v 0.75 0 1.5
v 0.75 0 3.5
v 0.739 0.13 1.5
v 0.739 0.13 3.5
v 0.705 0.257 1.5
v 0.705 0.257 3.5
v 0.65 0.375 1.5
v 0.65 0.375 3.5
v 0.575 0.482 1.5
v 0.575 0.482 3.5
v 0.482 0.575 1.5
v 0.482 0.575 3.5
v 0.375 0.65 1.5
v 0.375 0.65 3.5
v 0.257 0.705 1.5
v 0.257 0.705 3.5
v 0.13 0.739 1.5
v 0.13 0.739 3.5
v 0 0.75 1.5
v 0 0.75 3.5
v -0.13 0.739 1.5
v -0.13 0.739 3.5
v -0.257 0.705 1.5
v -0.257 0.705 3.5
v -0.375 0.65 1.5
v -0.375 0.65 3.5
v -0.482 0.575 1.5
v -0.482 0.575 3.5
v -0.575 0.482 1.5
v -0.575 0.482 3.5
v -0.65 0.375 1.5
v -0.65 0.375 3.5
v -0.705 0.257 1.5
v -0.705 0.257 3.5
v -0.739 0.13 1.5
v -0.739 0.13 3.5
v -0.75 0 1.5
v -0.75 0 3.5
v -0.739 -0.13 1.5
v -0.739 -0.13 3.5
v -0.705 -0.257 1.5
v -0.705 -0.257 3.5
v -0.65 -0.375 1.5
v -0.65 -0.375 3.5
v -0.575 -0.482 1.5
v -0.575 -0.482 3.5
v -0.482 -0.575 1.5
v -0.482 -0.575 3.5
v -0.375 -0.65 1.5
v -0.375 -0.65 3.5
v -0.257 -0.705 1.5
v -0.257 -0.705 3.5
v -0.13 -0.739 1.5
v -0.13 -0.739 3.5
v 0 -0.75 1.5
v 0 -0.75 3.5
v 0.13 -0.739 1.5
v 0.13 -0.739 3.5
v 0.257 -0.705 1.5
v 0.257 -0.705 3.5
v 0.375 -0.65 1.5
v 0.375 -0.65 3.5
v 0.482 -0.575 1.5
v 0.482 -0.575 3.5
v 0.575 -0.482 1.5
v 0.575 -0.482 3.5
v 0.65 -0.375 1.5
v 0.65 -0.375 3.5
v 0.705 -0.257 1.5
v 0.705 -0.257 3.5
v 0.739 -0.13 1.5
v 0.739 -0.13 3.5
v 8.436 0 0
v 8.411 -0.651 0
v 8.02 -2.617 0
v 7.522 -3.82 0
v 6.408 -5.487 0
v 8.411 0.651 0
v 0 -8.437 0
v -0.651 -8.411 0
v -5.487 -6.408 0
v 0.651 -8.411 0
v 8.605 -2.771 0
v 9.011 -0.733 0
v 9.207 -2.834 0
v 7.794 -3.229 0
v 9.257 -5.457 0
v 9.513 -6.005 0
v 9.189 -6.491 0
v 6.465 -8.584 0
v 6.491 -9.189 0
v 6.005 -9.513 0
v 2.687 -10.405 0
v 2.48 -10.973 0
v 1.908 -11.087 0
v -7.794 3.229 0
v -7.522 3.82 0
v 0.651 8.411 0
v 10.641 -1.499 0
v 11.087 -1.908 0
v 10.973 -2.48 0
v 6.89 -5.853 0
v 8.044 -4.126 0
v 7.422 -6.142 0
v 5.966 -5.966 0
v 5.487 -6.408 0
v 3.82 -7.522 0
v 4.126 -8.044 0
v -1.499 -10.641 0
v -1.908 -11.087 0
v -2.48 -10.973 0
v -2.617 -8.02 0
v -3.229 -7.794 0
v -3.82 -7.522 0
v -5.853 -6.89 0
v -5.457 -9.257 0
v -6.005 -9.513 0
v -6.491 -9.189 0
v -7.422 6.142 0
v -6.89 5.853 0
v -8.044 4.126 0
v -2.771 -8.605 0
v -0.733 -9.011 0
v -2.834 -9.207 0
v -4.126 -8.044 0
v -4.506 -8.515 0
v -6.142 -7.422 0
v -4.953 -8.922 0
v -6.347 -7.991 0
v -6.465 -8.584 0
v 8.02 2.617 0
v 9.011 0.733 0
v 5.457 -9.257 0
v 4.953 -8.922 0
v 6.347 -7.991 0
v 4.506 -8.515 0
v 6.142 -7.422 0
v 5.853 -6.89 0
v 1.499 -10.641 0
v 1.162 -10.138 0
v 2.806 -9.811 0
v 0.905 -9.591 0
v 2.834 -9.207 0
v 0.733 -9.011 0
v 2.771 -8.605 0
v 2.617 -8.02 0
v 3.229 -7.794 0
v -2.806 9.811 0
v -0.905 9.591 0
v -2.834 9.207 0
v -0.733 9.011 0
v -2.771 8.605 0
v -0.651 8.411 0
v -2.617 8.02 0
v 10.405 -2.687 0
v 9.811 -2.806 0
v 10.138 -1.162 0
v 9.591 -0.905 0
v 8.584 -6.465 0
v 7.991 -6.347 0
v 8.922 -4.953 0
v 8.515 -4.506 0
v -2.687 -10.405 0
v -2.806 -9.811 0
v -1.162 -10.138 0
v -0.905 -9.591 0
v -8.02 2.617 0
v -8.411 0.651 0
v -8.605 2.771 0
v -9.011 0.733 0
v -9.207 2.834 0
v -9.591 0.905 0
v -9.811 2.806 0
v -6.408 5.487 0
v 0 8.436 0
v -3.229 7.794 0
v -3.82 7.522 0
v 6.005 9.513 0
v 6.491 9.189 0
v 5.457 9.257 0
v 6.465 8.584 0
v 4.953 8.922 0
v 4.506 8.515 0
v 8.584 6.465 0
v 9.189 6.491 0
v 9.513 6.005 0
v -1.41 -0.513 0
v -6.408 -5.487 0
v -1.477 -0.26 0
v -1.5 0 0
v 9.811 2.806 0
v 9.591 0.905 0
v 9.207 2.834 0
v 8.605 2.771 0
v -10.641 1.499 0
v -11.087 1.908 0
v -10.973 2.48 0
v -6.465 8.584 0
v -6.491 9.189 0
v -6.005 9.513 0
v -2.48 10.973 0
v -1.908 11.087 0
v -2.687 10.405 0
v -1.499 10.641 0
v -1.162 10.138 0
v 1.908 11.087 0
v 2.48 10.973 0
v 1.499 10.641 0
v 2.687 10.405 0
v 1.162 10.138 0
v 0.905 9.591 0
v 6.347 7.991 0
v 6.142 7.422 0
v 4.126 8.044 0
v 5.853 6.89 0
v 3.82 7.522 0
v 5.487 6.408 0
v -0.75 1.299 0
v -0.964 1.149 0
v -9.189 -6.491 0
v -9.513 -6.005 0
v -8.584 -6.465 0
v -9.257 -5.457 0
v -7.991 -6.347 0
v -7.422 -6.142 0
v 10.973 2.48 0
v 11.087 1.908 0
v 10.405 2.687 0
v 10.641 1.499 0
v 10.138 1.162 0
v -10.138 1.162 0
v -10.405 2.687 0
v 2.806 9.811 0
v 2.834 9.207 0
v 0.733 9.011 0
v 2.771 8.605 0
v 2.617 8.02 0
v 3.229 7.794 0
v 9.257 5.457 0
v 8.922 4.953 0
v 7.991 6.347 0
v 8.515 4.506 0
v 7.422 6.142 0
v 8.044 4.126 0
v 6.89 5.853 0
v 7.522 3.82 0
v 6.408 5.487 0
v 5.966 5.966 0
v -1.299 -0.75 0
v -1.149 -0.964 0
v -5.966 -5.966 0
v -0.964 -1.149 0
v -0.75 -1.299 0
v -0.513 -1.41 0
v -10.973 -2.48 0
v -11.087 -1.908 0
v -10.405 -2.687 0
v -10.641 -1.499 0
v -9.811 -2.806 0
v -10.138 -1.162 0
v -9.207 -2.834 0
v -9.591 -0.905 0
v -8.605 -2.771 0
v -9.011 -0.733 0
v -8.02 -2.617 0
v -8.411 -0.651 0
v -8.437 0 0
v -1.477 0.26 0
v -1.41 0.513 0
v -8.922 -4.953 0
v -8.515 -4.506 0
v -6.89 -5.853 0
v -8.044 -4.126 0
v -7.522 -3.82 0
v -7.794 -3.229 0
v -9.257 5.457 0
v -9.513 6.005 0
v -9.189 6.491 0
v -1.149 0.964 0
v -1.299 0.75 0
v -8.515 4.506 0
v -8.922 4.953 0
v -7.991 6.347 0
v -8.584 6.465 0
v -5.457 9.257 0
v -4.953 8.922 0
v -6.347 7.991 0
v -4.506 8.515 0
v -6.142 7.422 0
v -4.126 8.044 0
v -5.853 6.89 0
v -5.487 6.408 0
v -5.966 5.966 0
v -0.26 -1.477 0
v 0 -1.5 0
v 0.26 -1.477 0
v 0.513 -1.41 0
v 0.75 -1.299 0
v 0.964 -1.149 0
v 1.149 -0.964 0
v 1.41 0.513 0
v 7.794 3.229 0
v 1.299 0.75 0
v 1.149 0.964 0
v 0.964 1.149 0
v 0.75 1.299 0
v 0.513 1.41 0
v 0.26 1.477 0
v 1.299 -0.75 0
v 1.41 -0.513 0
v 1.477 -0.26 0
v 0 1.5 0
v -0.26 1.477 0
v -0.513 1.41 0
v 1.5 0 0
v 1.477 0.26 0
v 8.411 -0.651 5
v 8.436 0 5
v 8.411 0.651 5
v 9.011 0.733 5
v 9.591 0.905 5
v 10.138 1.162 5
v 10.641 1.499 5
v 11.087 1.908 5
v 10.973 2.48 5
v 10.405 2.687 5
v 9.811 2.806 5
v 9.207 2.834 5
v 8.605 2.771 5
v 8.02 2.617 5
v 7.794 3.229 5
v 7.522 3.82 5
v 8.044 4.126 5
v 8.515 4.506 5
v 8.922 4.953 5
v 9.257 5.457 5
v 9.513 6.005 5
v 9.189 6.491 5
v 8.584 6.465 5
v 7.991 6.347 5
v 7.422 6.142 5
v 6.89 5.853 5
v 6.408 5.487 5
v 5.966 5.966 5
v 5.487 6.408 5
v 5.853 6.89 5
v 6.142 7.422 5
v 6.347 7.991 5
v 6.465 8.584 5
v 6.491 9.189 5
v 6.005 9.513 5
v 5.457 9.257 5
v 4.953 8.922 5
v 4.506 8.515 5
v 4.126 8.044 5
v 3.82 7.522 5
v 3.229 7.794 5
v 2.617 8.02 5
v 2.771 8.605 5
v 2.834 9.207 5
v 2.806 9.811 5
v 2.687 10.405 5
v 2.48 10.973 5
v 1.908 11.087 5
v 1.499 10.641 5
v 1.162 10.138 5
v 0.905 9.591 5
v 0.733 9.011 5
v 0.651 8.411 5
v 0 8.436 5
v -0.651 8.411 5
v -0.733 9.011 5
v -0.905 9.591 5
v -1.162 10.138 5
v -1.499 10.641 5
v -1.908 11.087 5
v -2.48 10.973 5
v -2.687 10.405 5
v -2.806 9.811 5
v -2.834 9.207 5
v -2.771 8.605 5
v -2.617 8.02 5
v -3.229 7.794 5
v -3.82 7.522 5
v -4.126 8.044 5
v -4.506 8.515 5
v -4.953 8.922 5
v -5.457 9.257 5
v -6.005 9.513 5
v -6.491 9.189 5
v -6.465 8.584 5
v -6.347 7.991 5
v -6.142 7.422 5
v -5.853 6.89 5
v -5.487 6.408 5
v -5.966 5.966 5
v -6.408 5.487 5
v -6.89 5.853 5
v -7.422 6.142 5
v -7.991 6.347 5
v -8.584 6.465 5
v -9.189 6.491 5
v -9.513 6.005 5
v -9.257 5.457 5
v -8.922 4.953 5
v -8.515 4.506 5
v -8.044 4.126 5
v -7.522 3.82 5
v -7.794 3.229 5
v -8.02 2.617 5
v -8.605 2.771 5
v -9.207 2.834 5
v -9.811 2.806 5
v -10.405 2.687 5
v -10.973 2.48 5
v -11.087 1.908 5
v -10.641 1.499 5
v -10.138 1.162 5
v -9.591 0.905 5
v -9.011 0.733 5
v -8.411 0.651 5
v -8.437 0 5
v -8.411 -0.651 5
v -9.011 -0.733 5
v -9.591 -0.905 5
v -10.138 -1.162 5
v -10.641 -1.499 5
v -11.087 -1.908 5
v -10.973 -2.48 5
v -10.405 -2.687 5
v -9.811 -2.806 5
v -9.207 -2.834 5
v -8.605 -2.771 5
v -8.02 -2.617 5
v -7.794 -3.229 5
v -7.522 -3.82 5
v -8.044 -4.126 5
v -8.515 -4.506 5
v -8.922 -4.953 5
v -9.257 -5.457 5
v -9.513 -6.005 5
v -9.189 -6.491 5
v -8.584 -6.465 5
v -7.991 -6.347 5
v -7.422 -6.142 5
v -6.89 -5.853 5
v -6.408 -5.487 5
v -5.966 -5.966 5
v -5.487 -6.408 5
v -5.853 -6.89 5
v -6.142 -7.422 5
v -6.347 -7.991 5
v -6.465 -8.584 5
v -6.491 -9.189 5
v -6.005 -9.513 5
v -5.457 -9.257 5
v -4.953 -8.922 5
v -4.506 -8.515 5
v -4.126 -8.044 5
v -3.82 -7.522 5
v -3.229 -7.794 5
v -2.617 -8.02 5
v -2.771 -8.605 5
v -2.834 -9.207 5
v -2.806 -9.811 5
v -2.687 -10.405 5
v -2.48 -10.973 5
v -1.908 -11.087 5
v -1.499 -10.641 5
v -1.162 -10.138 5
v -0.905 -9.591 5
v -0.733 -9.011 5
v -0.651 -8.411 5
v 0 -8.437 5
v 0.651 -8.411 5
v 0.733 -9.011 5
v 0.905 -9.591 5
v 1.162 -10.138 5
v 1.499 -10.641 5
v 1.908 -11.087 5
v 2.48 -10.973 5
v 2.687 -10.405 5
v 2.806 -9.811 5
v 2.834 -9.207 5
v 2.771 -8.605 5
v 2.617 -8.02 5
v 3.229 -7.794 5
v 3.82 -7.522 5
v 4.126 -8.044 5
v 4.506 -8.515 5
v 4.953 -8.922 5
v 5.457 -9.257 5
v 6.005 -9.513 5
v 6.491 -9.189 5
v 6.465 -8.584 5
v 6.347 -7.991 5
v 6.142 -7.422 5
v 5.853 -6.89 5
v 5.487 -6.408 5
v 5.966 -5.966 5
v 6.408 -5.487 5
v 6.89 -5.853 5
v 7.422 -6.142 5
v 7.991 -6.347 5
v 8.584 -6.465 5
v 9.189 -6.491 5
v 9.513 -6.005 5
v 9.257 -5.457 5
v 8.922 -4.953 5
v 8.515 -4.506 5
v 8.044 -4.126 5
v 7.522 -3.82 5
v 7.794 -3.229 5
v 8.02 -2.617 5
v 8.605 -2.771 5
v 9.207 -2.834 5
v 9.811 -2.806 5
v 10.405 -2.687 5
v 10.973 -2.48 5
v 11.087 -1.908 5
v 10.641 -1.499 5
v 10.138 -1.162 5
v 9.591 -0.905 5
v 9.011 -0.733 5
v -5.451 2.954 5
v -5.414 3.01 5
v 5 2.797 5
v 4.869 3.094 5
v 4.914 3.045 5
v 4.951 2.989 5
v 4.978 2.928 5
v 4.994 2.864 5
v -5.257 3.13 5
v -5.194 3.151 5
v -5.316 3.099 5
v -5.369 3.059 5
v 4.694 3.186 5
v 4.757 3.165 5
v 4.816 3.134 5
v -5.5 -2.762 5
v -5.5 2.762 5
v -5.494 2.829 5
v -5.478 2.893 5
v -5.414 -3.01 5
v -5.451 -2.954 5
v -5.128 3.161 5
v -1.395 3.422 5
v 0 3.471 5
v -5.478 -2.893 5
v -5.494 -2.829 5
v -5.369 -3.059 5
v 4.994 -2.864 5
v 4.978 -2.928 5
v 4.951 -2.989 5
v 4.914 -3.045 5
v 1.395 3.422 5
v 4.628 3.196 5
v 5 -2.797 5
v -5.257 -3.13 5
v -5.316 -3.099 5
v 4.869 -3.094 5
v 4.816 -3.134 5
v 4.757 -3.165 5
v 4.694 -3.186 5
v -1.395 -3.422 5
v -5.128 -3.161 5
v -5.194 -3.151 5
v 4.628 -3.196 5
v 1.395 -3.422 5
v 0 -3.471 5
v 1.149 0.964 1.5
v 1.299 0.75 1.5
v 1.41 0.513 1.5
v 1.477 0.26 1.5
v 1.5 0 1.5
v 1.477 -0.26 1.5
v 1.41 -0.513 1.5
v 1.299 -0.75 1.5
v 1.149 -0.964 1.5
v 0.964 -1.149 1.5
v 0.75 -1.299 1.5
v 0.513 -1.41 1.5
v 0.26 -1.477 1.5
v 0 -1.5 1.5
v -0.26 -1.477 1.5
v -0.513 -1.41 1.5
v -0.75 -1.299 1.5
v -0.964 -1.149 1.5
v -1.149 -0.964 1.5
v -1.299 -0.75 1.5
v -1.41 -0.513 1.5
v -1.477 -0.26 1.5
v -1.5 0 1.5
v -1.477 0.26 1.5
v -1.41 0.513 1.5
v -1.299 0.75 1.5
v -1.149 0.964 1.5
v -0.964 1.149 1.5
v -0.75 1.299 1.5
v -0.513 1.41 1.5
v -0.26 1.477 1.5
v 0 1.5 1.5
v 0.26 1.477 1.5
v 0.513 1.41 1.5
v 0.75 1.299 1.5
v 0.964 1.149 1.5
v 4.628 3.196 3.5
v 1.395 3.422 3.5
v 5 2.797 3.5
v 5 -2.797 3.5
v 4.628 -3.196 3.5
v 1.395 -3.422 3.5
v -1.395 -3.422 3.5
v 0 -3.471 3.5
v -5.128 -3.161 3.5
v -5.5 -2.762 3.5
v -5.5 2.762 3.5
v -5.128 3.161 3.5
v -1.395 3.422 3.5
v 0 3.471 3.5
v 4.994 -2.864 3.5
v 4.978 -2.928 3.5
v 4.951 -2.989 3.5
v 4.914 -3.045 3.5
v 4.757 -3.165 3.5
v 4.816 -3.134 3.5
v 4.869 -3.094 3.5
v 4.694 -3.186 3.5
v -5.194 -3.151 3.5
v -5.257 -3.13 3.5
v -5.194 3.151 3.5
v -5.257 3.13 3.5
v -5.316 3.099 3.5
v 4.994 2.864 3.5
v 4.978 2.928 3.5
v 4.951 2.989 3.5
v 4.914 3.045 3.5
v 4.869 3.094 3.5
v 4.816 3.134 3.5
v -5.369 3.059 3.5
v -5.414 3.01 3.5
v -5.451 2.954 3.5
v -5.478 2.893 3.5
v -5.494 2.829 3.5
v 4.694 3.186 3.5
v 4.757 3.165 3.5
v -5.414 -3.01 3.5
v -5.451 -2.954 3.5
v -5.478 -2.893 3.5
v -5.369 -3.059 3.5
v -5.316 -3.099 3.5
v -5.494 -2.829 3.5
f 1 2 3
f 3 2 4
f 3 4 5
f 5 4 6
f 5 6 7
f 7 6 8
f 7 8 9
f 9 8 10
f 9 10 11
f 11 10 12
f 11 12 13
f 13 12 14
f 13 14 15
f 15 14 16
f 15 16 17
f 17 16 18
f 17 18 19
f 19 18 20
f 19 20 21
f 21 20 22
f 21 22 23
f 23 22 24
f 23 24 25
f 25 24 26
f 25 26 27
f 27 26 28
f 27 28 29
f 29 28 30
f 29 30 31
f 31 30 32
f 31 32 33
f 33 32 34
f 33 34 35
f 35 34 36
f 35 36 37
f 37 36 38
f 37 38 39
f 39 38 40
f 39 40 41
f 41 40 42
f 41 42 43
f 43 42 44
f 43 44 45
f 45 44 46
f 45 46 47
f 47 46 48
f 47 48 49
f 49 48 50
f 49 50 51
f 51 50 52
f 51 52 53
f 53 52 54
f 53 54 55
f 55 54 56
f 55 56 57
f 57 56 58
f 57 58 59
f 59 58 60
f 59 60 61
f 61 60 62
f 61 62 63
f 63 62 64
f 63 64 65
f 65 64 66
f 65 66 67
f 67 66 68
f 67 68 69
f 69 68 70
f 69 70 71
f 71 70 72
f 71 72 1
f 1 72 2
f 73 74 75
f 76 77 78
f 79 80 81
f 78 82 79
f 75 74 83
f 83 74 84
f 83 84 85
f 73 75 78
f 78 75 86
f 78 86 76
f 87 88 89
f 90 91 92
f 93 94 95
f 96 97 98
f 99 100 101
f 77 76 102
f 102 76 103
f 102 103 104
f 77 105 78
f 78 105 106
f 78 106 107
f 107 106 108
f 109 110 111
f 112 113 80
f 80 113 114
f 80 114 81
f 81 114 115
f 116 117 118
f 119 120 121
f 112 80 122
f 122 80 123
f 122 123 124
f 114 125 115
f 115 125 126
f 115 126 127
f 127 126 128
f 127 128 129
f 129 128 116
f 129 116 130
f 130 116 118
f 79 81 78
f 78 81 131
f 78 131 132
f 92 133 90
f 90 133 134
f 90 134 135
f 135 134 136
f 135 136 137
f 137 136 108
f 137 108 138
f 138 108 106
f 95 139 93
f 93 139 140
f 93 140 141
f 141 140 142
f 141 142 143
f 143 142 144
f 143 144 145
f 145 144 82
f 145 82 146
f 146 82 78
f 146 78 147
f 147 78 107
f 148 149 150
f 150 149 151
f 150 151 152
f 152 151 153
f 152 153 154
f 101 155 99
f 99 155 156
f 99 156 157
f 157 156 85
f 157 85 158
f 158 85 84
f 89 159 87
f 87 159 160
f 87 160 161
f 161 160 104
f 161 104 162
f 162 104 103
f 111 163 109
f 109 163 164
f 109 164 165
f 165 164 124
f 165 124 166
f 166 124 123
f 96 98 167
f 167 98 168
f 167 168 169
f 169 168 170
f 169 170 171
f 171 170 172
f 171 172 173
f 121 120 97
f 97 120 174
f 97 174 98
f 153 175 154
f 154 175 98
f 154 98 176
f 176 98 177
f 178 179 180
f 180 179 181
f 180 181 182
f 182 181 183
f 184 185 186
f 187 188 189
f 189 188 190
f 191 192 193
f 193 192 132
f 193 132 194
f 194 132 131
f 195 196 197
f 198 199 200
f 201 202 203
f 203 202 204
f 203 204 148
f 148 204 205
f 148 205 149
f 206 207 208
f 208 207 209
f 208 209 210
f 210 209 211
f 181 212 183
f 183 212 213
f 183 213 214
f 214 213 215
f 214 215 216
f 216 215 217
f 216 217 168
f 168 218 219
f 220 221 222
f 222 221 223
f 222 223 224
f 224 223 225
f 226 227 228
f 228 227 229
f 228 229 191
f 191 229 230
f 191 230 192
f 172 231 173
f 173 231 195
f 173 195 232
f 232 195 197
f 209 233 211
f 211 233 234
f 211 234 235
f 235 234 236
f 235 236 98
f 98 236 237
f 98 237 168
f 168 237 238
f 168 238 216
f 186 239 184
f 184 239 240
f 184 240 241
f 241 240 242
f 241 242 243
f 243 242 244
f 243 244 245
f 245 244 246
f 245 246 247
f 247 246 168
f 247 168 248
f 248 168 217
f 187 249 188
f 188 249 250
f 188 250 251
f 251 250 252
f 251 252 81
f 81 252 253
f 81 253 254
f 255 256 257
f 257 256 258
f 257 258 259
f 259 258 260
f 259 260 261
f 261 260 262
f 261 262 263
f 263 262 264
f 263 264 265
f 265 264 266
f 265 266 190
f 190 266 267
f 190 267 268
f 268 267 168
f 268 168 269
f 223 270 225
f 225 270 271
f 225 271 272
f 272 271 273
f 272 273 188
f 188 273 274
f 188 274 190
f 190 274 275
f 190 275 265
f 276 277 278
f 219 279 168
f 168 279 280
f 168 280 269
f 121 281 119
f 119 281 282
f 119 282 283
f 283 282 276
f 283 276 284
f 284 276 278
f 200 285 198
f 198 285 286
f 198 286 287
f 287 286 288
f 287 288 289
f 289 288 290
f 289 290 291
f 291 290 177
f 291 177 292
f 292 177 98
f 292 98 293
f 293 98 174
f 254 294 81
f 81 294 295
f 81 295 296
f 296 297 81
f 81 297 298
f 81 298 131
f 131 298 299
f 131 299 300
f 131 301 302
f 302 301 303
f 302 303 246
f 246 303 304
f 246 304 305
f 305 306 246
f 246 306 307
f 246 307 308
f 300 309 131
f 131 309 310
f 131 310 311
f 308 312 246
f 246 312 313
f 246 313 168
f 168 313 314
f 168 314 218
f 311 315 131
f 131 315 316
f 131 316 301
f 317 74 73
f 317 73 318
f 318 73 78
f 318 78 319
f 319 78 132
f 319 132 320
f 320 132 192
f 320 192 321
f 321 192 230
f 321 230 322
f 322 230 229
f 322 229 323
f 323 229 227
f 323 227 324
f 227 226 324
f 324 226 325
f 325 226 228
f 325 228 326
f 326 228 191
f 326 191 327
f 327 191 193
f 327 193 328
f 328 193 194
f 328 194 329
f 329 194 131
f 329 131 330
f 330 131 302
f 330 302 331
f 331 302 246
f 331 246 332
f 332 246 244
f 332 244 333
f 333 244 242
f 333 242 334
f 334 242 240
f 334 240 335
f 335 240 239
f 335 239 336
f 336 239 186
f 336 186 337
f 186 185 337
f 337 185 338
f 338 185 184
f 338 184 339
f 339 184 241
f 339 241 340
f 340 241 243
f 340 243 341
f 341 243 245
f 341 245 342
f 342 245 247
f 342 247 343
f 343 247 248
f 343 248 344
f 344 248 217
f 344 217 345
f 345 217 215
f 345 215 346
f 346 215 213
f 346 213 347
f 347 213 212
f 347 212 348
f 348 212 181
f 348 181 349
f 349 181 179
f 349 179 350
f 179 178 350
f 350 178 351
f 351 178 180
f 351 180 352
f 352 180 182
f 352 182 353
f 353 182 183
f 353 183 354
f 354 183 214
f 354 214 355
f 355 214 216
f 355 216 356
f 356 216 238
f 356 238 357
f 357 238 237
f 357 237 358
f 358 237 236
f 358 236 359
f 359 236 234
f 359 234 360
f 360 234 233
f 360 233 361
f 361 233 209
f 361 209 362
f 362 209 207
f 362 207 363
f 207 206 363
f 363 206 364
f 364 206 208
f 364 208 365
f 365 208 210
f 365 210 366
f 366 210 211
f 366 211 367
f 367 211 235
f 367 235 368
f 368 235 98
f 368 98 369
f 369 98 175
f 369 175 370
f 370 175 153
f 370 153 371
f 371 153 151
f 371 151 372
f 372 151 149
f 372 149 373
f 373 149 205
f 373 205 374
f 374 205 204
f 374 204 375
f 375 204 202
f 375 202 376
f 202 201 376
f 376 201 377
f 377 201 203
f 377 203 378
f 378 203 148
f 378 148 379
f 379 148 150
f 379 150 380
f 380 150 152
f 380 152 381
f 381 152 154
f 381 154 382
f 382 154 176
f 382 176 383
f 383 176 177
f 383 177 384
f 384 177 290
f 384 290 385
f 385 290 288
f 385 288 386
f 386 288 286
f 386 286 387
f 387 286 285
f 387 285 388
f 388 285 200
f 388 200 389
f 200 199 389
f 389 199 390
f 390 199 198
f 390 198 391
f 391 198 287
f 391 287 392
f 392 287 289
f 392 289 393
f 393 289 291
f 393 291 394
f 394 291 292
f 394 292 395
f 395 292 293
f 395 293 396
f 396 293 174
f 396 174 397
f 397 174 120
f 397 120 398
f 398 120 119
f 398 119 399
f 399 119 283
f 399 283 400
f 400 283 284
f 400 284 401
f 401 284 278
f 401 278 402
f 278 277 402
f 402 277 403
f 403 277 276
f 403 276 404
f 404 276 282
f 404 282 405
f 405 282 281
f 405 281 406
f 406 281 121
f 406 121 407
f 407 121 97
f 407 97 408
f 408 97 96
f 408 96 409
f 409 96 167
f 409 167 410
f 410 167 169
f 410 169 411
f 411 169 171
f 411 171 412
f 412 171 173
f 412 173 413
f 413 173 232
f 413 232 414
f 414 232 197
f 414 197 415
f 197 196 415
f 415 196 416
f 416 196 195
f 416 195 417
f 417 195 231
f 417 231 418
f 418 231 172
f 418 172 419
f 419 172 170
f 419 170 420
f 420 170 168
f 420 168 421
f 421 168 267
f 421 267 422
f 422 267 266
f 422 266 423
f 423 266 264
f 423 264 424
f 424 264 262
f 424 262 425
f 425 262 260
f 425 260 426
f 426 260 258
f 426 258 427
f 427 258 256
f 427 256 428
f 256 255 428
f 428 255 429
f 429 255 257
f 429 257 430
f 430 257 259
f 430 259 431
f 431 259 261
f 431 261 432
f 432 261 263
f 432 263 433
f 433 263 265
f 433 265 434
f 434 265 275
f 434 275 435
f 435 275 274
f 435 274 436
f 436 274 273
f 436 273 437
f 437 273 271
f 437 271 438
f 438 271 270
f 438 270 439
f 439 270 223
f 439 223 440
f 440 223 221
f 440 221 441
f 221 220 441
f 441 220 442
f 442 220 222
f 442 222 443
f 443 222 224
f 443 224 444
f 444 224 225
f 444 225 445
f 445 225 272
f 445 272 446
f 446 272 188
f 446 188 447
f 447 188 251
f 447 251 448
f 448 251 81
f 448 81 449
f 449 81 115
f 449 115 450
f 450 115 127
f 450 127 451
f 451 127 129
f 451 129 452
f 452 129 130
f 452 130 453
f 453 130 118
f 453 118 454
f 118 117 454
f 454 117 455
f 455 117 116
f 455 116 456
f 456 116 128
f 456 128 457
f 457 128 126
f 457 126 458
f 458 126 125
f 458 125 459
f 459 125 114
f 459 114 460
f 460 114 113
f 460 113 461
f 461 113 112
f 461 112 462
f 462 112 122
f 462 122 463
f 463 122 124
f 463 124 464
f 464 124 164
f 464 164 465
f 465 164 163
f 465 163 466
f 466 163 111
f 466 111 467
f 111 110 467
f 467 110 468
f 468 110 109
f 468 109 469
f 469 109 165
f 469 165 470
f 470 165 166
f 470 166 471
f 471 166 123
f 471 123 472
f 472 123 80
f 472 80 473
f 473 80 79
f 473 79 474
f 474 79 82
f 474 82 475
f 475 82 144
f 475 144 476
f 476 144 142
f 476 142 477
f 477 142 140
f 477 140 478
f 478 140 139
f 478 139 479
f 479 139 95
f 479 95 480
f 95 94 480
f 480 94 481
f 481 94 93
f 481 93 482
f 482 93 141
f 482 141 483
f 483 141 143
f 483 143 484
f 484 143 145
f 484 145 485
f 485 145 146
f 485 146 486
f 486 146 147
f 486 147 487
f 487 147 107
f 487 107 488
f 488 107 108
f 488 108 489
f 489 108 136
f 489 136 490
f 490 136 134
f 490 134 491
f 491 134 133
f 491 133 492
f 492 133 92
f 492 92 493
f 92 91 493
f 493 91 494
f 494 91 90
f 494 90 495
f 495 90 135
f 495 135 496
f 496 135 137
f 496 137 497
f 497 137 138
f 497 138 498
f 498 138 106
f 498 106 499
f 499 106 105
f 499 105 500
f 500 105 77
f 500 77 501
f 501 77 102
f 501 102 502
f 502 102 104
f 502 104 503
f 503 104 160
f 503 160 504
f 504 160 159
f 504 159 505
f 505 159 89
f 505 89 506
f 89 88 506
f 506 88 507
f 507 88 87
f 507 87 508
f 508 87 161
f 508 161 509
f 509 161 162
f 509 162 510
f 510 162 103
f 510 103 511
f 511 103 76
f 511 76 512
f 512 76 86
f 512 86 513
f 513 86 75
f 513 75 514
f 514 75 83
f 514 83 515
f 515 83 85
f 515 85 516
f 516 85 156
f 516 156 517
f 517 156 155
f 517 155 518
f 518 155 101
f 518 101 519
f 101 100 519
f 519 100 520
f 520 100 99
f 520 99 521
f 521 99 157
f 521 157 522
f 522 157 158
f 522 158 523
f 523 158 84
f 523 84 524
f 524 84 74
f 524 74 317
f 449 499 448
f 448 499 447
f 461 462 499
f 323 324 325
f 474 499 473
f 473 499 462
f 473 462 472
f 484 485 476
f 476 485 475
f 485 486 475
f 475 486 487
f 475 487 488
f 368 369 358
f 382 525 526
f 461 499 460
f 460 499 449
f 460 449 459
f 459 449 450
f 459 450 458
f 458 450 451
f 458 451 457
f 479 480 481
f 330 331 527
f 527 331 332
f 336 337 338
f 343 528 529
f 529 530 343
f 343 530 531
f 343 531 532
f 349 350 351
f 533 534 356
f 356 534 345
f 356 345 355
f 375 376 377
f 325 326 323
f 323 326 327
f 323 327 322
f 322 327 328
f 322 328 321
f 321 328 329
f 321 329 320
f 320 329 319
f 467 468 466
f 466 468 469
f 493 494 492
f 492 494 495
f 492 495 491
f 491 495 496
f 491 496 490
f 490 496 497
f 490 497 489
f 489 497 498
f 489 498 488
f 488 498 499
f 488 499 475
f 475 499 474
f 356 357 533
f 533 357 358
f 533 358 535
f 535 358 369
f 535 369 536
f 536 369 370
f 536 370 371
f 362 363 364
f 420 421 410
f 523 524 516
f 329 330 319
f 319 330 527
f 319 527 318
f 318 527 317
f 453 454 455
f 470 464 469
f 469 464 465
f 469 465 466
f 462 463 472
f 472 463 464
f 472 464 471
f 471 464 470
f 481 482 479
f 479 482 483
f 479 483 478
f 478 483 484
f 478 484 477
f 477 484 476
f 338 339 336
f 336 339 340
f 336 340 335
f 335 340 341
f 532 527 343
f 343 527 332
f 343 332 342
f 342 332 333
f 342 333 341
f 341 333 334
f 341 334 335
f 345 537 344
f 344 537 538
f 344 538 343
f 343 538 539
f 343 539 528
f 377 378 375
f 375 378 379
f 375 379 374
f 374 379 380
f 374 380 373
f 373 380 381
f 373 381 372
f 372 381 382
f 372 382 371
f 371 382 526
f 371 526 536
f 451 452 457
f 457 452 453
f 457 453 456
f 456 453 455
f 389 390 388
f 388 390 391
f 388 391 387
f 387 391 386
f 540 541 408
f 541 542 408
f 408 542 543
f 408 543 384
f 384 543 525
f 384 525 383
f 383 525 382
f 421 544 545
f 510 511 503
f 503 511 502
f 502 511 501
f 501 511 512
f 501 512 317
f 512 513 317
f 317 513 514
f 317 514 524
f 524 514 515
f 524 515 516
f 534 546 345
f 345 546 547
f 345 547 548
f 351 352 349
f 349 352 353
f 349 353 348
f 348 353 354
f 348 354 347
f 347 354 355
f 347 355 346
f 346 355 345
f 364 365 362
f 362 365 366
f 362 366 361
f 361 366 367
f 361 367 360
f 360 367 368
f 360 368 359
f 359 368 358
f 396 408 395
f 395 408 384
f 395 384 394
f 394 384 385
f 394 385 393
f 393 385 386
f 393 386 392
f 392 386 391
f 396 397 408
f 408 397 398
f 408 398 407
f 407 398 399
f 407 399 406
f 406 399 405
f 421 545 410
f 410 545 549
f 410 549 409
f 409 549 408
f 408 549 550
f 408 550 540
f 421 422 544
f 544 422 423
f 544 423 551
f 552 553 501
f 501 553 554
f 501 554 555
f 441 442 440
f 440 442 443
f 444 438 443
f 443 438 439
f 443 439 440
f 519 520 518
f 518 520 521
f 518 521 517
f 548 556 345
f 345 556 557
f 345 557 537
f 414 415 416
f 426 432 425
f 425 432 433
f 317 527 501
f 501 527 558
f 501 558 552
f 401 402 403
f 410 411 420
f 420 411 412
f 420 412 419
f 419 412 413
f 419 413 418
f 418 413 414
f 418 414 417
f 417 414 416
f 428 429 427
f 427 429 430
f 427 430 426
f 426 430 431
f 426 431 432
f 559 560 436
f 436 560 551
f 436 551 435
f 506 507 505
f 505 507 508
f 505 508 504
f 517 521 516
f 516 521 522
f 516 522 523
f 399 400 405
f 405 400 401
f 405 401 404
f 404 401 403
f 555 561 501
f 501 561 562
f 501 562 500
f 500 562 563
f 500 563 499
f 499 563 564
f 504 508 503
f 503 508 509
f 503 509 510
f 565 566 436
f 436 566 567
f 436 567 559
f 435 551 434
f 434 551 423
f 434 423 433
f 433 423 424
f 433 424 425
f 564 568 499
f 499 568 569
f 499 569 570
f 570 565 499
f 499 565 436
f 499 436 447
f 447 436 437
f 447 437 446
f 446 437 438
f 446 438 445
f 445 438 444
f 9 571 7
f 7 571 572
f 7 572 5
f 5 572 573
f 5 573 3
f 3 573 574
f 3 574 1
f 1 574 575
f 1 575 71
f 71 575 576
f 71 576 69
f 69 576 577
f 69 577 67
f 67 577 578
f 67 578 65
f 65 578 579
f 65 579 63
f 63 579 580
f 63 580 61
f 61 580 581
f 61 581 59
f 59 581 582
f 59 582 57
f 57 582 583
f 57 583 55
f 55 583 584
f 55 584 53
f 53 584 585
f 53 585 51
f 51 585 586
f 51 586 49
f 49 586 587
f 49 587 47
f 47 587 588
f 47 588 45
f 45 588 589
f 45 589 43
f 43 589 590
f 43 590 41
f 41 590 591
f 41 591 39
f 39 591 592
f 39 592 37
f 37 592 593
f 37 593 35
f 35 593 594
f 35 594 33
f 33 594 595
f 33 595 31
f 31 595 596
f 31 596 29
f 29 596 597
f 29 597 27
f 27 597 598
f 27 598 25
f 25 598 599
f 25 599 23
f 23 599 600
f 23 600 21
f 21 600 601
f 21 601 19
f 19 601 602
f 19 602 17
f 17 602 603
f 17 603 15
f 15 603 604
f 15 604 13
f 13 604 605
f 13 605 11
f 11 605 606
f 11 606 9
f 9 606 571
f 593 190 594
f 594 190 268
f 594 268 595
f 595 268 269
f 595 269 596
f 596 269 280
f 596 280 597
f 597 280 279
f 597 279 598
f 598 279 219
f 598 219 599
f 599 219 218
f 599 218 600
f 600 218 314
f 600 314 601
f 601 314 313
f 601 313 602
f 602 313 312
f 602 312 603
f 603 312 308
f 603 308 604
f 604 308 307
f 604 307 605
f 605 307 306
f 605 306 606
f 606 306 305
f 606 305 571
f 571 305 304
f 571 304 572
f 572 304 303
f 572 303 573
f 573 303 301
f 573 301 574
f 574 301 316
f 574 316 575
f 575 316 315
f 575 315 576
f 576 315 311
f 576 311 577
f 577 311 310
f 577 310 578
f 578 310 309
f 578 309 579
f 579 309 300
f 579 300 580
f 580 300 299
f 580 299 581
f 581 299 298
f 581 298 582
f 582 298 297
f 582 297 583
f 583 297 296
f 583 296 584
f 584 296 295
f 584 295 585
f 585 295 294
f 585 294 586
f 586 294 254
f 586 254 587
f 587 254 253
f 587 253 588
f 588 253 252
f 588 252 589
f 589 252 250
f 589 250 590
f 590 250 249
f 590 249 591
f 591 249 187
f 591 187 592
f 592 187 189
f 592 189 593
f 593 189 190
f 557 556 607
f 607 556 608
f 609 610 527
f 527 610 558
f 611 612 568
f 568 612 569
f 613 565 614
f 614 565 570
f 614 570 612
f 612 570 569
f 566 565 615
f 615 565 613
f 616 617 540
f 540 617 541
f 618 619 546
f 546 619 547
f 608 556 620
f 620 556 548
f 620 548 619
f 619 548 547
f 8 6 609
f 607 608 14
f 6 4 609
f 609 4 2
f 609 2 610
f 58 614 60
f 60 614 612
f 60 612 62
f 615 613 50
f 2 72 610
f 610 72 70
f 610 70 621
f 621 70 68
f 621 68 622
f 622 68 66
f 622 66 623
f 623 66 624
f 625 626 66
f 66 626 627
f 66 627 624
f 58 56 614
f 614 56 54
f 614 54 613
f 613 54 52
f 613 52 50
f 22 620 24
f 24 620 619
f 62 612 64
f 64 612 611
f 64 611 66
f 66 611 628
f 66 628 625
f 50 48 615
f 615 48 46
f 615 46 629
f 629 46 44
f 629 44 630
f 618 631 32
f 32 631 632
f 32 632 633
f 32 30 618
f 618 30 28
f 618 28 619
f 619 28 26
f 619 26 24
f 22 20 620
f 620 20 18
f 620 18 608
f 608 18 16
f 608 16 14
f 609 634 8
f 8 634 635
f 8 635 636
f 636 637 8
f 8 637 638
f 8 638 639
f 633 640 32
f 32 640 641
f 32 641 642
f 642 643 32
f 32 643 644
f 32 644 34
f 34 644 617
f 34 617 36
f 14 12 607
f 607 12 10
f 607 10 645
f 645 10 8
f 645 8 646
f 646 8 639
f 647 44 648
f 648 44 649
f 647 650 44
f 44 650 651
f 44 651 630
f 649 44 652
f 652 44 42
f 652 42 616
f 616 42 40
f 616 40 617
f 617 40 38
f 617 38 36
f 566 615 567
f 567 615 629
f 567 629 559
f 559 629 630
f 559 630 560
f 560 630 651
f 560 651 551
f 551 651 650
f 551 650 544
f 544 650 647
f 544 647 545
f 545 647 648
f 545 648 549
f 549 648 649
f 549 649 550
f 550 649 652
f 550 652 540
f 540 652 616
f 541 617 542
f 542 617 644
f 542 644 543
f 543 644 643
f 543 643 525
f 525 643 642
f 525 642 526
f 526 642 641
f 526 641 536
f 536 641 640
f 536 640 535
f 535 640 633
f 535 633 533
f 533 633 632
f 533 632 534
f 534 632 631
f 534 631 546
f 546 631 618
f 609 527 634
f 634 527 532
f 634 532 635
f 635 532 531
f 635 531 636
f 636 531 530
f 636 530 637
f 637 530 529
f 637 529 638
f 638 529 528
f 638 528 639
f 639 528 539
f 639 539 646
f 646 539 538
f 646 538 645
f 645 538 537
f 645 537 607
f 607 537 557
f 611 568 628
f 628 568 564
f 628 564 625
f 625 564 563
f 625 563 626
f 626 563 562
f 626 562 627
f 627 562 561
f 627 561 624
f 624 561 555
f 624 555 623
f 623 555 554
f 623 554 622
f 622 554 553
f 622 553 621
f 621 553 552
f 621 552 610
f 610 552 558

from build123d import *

# Parameters (mm, degrees)
SALIENTE_EXTRUIR1_DEPTH = 5
CORTAR_EXTRUIR1_REACH   = 18.457
CROQUIS4_R              = 0.75
CORTAR_EXTRUIR2_START   = -3.5
CROQUIS4_3_R            = 1.5
CROQUIS4_3_R_2          = 0.75
CORTAR_EXTRUIR2_DEPTH   = 1.5
CROQUIS4_4_R            = 1.5
CROQUIS4_4_R_2          = 0.75
CORTAR_EXTRUIR3_DEPTH   = 1.5
REDONDEO2_R             = 0.4


with BuildPart() as part:
    # Croquis2 → Saliente-Extruir1 (new body)
    with BuildSketch(Plane.XY):
        with BuildLine():
            ThreePointArc((8.411340626, 0.651061533), (9.869549365, 1.023063112), (11.087096586, 1.907561087))
            ThreePointArc((11.087096586, 1.907561087), (11.033834405, 2.194766123), (10.973133635, 2.480491531))
            ThreePointArc((10.973133635, 2.480491531), (9.509783957, 2.831725957), (8.020215908, 2.617378277))
            ThreePointArc((8.020215908, 2.617378277), (7.794309676, 3.228508777), (7.521914983, 3.820383127))
            ThreePointArc((7.521914983, 3.820383127), (8.72676535, 4.722100097), (9.513149586, 6.005204821))
            ThreePointArc((9.513149586, 6.005204821), (9.354033138, 6.250165121), (9.188610559, 6.4909118))
            ThreePointArc((9.188610559, 6.4909118), (7.702240148, 6.255410419), (6.408086021, 5.487345971))
            ThreePointArc((6.408086021, 5.487345971), (5.965506359, 5.965506359), (5.487345971, 6.408086021))
            ThreePointArc((5.487345971, 6.408086021), (6.255410419, 7.702240148), (6.4909118, 9.188610559))
            ThreePointArc((6.4909118, 9.188610559), (6.250165121, 9.354033138), (6.005204821, 9.513149586))
            ThreePointArc((6.005204821, 9.513149586), (4.722100097, 8.72676535), (3.820383127, 7.521914983))
            ThreePointArc((3.820383127, 7.521914983), (3.228508777, 7.794309676), (2.617378277, 8.020215908))
            ThreePointArc((2.617378277, 8.020215908), (2.831725957, 9.509783957), (2.480491531, 10.973133635))
            ThreePointArc((2.480491531, 10.973133635), (2.194766123, 11.033834405), (1.907561087, 11.087096586))
            ThreePointArc((1.907561087, 11.087096586), (1.023063112, 9.869549365), (0.651061533, 8.411340626))
            ThreePointArc((0.651061533, 8.411340626), (0, 8.4365), (-0.651061533, 8.411340626))
            ThreePointArc((-0.651061533, 8.411340626), (-1.023063112, 9.869549365), (-1.907561087, 11.087096586))
            ThreePointArc((-1.907561087, 11.087096586), (-2.194766123, 11.033834405), (-2.480491531, 10.973133635))
            ThreePointArc((-2.480491531, 10.973133635), (-2.831725957, 9.509783957), (-2.617378277, 8.020215908))
            ThreePointArc((-2.617378277, 8.020215908), (-3.228508777, 7.794309676), (-3.820383127, 7.521914983))
            ThreePointArc((-3.820383127, 7.521914983), (-4.722100097, 8.72676535), (-6.005204821, 9.513149586))
            ThreePointArc((-6.005204821, 9.513149586), (-6.250165121, 9.354033138), (-6.4909118, 9.188610559))
            ThreePointArc((-6.4909118, 9.188610559), (-6.255410419, 7.702240148), (-5.487345971, 6.408086021))
            ThreePointArc((-5.487345971, 6.408086021), (-5.965506359, 5.965506359), (-6.408086021, 5.487345971))
            ThreePointArc((-6.408086021, 5.487345971), (-7.702240148, 6.255410419), (-9.188610559, 6.4909118))
            ThreePointArc((-9.188610559, 6.4909118), (-9.354033138, 6.250165121), (-9.513149586, 6.005204821))
            ThreePointArc((-9.513149586, 6.005204821), (-8.72676535, 4.722100097), (-7.521914983, 3.820383127))
            ThreePointArc((-7.521914983, 3.820383127), (-7.794309676, 3.228508777), (-8.020215908, 2.617378277))
            ThreePointArc((-8.020215908, 2.617378277), (-9.509783957, 2.831725957), (-10.973133635, 2.480491531))
            ThreePointArc((-10.973133635, 2.480491531), (-11.033834405, 2.194766123), (-11.087096586, 1.907561087))
            ThreePointArc((-11.087096586, 1.907561087), (-9.869549365, 1.023063112), (-8.411340626, 0.651061533))
            ThreePointArc((-8.411340626, 0.651061533), (-8.4365, 0), (-8.411340626, -0.651061533))
            ThreePointArc((-8.411340626, -0.651061533), (-9.869549365, -1.023063112), (-11.087096586, -1.907561087))
            ThreePointArc((-11.087096586, -1.907561087), (-11.033834405, -2.194766123), (-10.973133635, -2.480491531))
            ThreePointArc((-10.973133635, -2.480491531), (-9.509783957, -2.831725957), (-8.020215908, -2.617378277))
            ThreePointArc((-8.020215908, -2.617378277), (-7.794309676, -3.228508777), (-7.521914983, -3.820383127))
            ThreePointArc((-7.521914983, -3.820383127), (-8.72676535, -4.722100097), (-9.513149586, -6.005204821))
            ThreePointArc((-9.513149586, -6.005204821), (-9.354033138, -6.250165121), (-9.188610559, -6.4909118))
            ThreePointArc((-9.188610559, -6.4909118), (-7.702240148, -6.255410419), (-6.408086021, -5.487345971))
            ThreePointArc((-6.408086021, -5.487345971), (-5.965506359, -5.965506359), (-5.487345971, -6.408086021))
            ThreePointArc((-5.487345971, -6.408086021), (-6.255410419, -7.702240148), (-6.4909118, -9.188610559))
            ThreePointArc((-6.4909118, -9.188610559), (-6.250165121, -9.354033138), (-6.005204821, -9.513149586))
            ThreePointArc((-6.005204821, -9.513149586), (-4.722100097, -8.72676535), (-3.820383127, -7.521914983))
            ThreePointArc((-3.820383127, -7.521914983), (-3.228508777, -7.794309676), (-2.617378277, -8.020215908))
            ThreePointArc((-2.617378277, -8.020215908), (-2.831725957, -9.509783957), (-2.480491531, -10.973133635))
            ThreePointArc((-2.480491531, -10.973133635), (-2.194766123, -11.033834405), (-1.907561087, -11.087096586))
            ThreePointArc((-1.907561087, -11.087096586), (-1.023063112, -9.869549365), (-0.651061533, -8.411340626))
            ThreePointArc((-0.651061533, -8.411340626), (0, -8.4365), (0.651061533, -8.411340626))
            ThreePointArc((0.651061533, -8.411340626), (1.023063112, -9.869549365), (1.907561087, -11.087096586))
            ThreePointArc((1.907561087, -11.087096586), (2.194766123, -11.033834405), (2.480491531, -10.973133635))
            ThreePointArc((2.480491531, -10.973133635), (2.831725957, -9.509783957), (2.617378277, -8.020215908))
            ThreePointArc((2.617378277, -8.020215908), (3.228508777, -7.794309676), (3.820383127, -7.521914983))
            ThreePointArc((3.820383127, -7.521914983), (4.722100097, -8.72676535), (6.005204821, -9.513149586))
            ThreePointArc((6.005204821, -9.513149586), (6.250165121, -9.354033138), (6.4909118, -9.188610559))
            ThreePointArc((6.4909118, -9.188610559), (6.255410419, -7.702240148), (5.487345971, -6.408086021))
            ThreePointArc((5.487345971, -6.408086021), (5.965506359, -5.965506359), (6.408086021, -5.487345971))
            ThreePointArc((6.408086021, -5.487345971), (7.702240148, -6.255410419), (9.188610559, -6.4909118))
            ThreePointArc((9.188610559, -6.4909118), (9.354033138, -6.250165121), (9.513149586, -6.005204821))
            ThreePointArc((9.513149586, -6.005204821), (8.72676535, -4.722100097), (7.521914983, -3.820383127))
            ThreePointArc((7.521914983, -3.820383127), (7.794309676, -3.228508777), (8.020215908, -2.617378277))
            ThreePointArc((8.020215908, -2.617378277), (9.509783957, -2.831725957), (10.973133635, -2.480491531))
            ThreePointArc((10.973133635, -2.480491531), (11.033834405, -2.194766123), (11.087096586, -1.907561087))
            ThreePointArc((11.087096586, -1.907561087), (9.869549365, -1.023063112), (8.411340626, -0.651061533))
            ThreePointArc((8.411340626, -0.651061533), (8.4365, 0), (8.411340626, 0.651061533))
        make_face()
    extrude(amount=SALIENTE_EXTRUIR1_DEPTH)

    # Croquis4 → Cortar-Extruir1 (cut, up to next)
    with BuildSketch(Plane.XY.offset(5), mode=Mode.PRIVATE) as cortar_extruir1_sk1:
        Circle(CROQUIS4_R)
    cortar_extruir1_tool1 = extrude(cortar_extruir1_sk1.sketch, amount=-CORTAR_EXTRUIR1_REACH, mode=Mode.PRIVATE) & part.part
    add(cortar_extruir1_tool1.solids().sort_by_distance((0, 0, 5))[0], mode=Mode.SUBTRACT)

    # Croquis4<3> → Cortar-Extruir2 (cut)
    with BuildSketch(Plane.XY.offset(5).offset(CORTAR_EXTRUIR2_START)):
        Circle(CROQUIS4_3_R)
        Circle(CROQUIS4_3_R_2, mode=Mode.SUBTRACT)
    extrude(amount=-CORTAR_EXTRUIR2_DEPTH, mode=Mode.SUBTRACT)

    # Croquis4<4> → Cortar-Extruir3 (cut)
    # profile 1 of 2: a face of its own
    with BuildSketch(Plane.XY.offset(5)):
        with BuildLine():
            Line((-5.5, 3.135446053), (-5.5, -3.135446053))
            Line((-5.5, -3.135446053), (-1.395129475, -3.422486562))
            ThreePointArc((-1.395129475, -3.422486562), (0, -3.471205557), (1.395129475, -3.422486562))
            Line((1.395129475, -3.422486562), (5, -3.170409459))
            Line((5, -3.170409459), (5, 3.170409459))
            Line((5, 3.170409459), (1.395129475, 3.422486562))
            ThreePointArc((1.395129475, 3.422486562), (0, 3.471205557), (-1.395129475, 3.422486562))
            Line((-1.395129475, 3.422486562), (-5.5, 3.135446053))
        make_face()
        Circle(CROQUIS4_4_R, mode=Mode.SUBTRACT)
    # profile 2 of 2: a face of its own
    with BuildSketch(Plane.XY.offset(5)):
        Circle(CROQUIS4_4_R)
        Circle(CROQUIS4_4_R_2, mode=Mode.SUBTRACT)
    extrude(amount=-CORTAR_EXTRUIR3_DEPTH, mode=Mode.SUBTRACT)

    # Redondeo2
    redondeo2_edges = [part.edges().sort_by_distance(p)[0] for p in [
        (5, 3.170409459, 4.25),
        (5, -3.170409459, 4.25),
        (-5.5, -3.135446053, 4.25),
        (-5.5, 3.135446053, 4.25),
    ]]
    fillet(redondeo2_edges, radius=REDONDEO2_R)


solid = part.part
